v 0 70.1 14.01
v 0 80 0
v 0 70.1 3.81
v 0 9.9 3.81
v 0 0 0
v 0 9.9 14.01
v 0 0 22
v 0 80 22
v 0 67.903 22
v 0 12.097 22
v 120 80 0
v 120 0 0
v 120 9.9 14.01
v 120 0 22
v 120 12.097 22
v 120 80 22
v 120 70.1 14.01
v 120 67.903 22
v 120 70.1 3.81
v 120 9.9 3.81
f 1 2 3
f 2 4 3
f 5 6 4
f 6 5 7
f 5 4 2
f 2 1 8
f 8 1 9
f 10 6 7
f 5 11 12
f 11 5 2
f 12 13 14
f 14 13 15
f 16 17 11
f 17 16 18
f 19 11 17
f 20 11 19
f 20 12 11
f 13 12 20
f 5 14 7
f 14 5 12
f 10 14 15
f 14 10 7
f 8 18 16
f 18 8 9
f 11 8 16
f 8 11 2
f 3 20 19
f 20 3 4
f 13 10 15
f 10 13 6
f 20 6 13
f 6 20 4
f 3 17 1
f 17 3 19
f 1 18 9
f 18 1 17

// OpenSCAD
module ChairBumper(){
    difference(){
        cube([120, 80, 22]);
        
        translate([-5, 70.1, 18.19]){
            rotate([-90, 0, -90]){
                linear_extrude(height = 130){
                    polygon([[0, 0], [60.2, 0], [60.2, 10.2],  [58, 18.2], [2.2, 18.2], [0, 10.2]]);
                }
            }
        }
    }
}

module Main(){
    translate([0, 80, 22]){
        rotate([180, 0, 0]){
            ChairBumper();
        }
    }
}

Main();
